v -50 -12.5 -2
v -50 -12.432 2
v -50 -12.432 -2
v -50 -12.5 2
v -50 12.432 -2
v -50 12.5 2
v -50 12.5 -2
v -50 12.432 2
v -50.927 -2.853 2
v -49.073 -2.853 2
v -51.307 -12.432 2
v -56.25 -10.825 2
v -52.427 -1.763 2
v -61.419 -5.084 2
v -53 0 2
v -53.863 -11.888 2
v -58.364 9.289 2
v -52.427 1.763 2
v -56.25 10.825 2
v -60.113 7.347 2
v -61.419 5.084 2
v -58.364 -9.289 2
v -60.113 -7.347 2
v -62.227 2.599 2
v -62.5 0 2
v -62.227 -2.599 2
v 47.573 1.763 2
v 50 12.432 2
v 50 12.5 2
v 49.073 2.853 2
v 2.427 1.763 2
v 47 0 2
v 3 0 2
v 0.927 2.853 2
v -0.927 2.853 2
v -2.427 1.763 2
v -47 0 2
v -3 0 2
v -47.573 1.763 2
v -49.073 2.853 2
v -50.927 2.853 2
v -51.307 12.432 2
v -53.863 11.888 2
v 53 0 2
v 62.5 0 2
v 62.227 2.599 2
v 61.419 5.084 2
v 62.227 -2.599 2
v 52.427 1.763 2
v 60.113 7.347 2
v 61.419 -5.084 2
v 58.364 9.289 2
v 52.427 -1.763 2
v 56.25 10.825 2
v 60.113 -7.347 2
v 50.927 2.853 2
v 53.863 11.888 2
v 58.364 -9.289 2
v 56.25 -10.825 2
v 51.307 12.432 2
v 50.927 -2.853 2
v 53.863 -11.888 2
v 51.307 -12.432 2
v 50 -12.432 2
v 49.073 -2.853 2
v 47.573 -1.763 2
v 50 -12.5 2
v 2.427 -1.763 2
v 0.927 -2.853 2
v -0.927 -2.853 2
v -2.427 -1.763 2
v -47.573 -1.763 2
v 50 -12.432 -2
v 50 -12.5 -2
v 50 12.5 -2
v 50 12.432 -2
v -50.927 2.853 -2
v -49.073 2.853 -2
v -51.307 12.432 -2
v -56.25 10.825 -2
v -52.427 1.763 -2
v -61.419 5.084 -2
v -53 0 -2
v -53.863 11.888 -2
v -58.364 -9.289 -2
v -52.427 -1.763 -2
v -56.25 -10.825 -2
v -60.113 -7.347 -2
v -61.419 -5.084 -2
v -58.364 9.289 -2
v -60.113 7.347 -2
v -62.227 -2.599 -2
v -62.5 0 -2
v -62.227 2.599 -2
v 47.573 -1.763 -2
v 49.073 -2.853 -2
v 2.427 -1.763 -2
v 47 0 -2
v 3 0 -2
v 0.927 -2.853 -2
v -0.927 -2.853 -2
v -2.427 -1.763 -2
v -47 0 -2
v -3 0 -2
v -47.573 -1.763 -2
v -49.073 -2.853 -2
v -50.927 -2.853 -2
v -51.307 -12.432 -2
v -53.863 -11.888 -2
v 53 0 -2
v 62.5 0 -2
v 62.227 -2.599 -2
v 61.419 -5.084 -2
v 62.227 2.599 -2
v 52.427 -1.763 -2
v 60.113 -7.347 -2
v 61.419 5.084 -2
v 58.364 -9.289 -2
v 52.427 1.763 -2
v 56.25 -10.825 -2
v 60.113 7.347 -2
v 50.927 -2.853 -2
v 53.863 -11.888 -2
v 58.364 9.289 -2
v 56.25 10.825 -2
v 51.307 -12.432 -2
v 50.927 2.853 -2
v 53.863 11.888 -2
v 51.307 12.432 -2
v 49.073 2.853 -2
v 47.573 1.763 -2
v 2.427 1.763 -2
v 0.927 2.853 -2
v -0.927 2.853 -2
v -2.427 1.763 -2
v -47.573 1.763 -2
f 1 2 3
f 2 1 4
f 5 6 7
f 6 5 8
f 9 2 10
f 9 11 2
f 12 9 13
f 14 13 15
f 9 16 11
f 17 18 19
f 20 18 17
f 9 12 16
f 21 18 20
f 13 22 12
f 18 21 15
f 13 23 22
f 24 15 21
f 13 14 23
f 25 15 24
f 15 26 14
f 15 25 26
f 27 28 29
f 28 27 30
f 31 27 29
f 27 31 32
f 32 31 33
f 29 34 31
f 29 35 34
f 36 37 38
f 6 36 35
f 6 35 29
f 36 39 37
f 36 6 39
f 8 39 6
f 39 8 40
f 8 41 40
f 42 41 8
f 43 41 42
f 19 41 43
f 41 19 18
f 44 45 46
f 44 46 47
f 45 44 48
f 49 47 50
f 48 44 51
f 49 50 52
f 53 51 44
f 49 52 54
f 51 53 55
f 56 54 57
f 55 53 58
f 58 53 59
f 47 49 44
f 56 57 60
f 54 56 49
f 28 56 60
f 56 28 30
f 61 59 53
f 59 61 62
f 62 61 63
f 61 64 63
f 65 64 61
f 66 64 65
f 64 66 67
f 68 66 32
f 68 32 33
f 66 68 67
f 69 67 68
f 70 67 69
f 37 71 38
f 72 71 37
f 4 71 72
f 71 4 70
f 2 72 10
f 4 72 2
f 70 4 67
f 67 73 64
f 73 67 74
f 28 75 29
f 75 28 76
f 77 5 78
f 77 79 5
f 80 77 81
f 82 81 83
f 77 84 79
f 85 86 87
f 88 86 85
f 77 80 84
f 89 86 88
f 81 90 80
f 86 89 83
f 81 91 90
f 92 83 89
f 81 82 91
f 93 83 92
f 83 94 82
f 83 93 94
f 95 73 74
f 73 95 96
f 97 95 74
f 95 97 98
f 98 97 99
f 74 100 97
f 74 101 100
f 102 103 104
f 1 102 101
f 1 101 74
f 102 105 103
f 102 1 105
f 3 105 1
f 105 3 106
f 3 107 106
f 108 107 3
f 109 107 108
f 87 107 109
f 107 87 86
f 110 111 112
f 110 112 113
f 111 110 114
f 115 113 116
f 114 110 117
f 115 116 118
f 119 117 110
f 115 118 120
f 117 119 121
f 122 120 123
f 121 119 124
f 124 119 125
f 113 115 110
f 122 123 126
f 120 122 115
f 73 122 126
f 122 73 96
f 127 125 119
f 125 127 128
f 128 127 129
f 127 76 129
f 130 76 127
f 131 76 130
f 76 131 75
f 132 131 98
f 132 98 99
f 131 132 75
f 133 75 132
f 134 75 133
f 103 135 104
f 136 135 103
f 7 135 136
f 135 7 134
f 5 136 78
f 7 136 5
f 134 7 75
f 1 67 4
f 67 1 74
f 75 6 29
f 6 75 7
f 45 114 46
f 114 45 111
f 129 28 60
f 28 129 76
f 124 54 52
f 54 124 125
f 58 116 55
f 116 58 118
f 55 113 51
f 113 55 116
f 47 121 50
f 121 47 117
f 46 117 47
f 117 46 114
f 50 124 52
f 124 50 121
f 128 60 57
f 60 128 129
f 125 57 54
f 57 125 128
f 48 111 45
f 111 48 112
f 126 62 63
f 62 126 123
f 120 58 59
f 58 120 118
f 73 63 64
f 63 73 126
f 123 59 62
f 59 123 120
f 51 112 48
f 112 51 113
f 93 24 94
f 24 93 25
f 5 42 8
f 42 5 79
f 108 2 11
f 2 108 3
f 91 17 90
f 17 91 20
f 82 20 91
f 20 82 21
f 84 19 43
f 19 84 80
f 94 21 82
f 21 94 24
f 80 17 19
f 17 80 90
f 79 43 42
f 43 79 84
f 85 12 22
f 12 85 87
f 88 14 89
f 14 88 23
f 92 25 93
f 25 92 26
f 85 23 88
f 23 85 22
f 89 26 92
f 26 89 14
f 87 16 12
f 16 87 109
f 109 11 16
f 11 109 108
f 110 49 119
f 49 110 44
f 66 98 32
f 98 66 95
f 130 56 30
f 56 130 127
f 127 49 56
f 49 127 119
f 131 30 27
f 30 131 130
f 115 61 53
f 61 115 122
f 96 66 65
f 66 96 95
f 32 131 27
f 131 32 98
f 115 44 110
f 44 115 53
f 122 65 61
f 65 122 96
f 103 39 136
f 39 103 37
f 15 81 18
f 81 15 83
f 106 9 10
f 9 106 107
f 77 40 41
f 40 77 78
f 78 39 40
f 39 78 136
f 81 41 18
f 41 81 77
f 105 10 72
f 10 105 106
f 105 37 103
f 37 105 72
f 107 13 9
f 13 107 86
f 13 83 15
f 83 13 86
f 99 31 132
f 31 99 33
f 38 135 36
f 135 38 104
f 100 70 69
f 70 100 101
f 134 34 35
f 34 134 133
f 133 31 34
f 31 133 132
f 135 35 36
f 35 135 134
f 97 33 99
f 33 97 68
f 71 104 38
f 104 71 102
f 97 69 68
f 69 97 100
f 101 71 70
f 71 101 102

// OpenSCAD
depth = 4;
length = 100;
width = 25;

difference() {
  bar();
  translate([(length / 2), 0, 0]) hole();
  translate([-(length / 2), 0, 0]) hole();
  hole();
}

module hole() {
  cylinder(r=3, h=depth, center=true);
}

module bar() {
  cube(size=[length, width, depth], center=true);
  translate([length/2, 0, 0]) cylinder(r=width/2, h=depth, center=true);
  translate([-length/2, 0, 0]) cylinder(r=width/2, h=depth, center=true);
}
